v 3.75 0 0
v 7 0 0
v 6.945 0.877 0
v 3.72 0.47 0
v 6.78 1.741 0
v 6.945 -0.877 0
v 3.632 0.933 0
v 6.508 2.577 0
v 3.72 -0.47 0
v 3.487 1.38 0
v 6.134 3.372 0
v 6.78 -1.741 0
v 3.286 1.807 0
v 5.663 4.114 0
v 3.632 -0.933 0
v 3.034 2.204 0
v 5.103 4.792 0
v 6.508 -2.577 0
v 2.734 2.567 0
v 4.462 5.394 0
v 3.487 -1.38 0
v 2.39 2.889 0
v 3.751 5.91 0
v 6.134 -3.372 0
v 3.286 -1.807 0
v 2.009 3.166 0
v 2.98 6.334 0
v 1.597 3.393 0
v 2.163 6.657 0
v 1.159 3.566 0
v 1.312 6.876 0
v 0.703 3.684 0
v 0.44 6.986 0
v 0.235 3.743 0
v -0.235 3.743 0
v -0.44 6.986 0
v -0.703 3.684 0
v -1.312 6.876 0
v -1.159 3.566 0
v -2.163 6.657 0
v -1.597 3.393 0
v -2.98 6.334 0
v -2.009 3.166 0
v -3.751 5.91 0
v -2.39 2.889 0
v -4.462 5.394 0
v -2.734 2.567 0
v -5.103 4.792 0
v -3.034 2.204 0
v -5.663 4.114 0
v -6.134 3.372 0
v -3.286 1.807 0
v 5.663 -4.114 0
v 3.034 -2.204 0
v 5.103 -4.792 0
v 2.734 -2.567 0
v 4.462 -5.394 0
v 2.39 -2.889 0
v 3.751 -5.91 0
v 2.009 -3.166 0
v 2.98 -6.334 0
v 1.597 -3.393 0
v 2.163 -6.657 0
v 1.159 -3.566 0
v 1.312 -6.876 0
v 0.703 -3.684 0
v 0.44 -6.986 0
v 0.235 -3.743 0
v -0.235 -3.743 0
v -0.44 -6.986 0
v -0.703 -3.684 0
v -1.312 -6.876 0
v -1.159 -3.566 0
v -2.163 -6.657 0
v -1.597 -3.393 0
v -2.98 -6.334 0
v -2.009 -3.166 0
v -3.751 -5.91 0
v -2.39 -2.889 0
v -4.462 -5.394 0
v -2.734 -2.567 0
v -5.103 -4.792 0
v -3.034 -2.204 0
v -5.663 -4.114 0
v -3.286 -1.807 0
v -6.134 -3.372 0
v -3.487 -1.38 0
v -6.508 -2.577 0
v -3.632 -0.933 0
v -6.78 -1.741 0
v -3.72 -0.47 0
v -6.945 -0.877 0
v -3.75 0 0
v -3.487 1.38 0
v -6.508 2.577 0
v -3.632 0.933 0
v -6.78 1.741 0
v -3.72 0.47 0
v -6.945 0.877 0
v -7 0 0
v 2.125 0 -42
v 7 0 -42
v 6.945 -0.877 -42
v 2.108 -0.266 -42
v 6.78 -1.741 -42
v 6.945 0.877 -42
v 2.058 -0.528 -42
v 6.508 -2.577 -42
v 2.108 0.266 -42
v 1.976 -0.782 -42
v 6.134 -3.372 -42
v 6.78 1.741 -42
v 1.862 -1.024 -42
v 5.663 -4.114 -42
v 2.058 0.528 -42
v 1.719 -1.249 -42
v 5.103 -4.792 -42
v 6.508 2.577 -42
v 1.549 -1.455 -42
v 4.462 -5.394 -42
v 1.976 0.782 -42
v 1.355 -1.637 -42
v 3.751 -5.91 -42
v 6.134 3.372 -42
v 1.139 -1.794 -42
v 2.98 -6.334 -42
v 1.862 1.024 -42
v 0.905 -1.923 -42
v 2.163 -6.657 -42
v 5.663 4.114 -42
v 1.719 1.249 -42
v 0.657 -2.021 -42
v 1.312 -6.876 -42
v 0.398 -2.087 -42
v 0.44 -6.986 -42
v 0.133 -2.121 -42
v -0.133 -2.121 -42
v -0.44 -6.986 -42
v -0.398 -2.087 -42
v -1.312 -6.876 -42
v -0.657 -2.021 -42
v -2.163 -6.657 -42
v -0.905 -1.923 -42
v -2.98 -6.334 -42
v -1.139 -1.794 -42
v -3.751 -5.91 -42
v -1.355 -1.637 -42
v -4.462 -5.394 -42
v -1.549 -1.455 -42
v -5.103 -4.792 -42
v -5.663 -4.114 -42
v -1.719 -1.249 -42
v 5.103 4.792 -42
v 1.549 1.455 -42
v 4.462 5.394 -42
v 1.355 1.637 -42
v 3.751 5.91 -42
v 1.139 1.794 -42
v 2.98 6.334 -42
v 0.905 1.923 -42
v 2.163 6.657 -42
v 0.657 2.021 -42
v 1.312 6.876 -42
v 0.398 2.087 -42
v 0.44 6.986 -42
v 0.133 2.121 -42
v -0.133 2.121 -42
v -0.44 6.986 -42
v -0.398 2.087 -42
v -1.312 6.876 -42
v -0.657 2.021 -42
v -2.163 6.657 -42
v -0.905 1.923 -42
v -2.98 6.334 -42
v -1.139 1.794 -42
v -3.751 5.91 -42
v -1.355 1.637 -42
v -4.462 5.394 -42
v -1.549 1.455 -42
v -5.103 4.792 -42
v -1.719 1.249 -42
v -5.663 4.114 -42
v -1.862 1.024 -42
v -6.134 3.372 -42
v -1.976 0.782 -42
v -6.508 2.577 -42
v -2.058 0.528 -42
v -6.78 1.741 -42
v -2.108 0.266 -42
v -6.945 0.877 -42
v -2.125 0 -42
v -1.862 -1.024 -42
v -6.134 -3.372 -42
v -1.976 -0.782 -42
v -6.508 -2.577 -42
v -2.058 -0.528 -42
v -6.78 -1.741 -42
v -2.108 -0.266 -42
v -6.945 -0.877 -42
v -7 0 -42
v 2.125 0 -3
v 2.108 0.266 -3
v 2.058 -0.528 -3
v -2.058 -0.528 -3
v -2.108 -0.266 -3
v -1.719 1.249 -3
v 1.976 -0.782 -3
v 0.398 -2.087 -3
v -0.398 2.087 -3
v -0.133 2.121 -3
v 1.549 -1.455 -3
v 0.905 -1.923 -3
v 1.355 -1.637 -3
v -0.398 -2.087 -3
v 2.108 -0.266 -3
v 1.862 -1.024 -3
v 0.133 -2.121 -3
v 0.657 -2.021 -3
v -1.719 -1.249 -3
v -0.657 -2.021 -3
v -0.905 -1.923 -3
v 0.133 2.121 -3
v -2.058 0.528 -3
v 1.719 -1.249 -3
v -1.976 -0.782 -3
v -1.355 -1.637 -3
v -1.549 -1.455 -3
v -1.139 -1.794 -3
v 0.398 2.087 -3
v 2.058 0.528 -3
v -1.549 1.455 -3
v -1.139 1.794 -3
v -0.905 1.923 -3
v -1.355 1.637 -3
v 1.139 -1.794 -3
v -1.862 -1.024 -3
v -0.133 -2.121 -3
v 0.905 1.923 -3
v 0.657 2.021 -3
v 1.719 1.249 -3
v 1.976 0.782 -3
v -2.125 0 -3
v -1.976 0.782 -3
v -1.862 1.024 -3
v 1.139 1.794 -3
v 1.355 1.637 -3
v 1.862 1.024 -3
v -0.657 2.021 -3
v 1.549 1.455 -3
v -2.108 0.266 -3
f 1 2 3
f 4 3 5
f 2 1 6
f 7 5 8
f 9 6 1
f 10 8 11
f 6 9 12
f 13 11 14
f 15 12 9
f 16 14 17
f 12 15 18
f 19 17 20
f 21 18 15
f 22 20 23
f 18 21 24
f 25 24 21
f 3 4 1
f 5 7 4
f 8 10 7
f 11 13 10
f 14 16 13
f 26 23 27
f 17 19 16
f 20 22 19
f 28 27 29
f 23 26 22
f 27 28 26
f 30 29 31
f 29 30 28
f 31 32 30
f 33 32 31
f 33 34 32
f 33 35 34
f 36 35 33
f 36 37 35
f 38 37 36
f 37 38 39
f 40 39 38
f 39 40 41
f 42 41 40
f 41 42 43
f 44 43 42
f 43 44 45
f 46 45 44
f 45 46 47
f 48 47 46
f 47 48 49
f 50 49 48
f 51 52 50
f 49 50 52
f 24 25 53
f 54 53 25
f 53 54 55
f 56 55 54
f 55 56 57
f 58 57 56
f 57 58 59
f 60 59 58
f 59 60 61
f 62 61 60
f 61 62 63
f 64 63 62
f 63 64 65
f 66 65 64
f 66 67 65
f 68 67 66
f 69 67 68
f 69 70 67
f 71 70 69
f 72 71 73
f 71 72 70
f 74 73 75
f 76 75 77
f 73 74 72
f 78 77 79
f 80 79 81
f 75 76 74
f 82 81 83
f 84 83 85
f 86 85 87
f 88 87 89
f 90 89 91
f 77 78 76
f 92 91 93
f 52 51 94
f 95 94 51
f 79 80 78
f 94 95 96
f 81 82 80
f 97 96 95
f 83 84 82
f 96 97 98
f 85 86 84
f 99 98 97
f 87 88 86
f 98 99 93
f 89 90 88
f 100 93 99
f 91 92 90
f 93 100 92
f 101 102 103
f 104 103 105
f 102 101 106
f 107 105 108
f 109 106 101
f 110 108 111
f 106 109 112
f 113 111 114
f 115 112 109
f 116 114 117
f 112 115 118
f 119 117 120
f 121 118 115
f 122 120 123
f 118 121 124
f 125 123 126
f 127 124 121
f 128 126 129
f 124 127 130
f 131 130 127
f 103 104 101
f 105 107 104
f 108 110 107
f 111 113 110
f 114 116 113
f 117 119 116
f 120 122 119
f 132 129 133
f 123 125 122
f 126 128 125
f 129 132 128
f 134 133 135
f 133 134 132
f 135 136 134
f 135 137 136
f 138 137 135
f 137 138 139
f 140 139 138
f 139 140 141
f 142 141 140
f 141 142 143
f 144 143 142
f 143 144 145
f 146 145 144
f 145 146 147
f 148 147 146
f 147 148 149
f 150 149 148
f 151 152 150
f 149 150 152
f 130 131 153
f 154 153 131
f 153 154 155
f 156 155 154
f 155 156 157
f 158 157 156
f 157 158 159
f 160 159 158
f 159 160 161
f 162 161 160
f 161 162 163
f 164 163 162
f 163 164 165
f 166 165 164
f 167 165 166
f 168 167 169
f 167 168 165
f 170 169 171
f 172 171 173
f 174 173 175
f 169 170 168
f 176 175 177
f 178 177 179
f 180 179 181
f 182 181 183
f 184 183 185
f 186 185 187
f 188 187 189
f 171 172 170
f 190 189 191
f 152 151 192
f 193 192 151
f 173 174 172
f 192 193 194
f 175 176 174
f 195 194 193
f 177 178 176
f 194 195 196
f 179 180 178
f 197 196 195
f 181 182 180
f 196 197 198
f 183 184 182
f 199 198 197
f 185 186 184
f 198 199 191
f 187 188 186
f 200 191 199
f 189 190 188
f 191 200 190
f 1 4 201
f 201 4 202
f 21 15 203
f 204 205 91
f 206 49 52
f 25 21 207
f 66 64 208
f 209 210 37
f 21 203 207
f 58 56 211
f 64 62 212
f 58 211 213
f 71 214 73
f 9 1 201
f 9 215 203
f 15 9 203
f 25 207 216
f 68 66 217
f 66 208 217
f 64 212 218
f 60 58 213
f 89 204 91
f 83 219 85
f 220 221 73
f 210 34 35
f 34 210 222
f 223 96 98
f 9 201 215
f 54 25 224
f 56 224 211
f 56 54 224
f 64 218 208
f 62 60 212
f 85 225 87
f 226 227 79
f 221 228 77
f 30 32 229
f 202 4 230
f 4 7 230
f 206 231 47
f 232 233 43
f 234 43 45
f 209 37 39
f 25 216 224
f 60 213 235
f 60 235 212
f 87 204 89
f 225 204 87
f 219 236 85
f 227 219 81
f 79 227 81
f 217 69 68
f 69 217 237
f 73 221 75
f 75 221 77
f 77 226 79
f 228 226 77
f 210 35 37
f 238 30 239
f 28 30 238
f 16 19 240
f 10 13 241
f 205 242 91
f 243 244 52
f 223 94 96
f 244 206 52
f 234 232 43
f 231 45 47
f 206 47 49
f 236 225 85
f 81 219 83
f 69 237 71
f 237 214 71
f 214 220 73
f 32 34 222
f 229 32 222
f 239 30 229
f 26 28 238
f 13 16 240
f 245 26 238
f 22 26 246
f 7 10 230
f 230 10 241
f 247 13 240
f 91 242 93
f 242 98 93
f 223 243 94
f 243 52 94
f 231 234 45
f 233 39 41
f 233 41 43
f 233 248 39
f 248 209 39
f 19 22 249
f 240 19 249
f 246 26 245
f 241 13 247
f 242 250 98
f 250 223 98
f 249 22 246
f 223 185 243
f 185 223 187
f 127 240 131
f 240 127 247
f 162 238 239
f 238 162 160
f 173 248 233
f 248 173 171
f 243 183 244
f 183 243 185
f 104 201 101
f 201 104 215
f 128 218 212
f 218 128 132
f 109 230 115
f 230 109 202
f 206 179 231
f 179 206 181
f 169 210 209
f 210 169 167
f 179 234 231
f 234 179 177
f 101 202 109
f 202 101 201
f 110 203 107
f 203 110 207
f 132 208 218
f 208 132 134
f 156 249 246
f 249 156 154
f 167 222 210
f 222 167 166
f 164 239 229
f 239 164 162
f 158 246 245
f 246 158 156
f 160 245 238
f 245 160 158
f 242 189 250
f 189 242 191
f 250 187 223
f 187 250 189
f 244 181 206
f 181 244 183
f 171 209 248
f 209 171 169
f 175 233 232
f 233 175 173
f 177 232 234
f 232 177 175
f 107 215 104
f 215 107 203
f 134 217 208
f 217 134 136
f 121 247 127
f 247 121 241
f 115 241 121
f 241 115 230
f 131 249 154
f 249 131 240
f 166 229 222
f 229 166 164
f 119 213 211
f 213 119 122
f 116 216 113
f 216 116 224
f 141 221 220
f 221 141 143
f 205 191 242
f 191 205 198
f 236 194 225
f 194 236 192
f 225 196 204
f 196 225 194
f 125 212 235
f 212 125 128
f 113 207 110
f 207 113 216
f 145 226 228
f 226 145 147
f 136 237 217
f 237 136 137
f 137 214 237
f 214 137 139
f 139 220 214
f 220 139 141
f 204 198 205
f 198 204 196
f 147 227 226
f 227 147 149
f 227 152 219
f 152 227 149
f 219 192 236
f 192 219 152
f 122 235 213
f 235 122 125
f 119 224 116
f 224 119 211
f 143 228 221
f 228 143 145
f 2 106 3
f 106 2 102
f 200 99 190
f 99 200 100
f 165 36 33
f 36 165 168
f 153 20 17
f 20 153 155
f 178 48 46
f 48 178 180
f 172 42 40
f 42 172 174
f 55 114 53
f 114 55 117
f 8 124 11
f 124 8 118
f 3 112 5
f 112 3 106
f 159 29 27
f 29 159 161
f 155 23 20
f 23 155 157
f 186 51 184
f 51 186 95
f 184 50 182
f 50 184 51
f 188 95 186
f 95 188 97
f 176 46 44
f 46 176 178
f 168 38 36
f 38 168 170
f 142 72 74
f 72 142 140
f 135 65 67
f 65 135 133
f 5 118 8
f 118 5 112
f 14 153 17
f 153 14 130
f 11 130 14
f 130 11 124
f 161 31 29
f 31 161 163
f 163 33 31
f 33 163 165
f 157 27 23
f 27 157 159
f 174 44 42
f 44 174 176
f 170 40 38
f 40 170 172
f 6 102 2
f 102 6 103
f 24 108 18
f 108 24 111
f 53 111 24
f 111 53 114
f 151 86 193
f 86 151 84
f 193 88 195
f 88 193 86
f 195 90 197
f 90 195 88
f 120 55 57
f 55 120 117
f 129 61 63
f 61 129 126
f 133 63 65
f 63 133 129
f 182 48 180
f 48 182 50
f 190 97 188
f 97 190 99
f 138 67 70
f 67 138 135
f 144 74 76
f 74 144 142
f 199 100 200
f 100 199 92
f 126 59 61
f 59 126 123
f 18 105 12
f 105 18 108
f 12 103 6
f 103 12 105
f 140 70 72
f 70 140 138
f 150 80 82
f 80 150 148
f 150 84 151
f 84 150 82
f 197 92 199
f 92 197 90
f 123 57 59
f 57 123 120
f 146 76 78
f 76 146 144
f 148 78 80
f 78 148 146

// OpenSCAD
$fn = 50;


difference() {
	union() {
		translate(v = [0, 0, -42.0000000000]) {
			cylinder(h = 42, r = 7.0000000000);
		}
		cylinder(h = 0, r = 16.0000000000);
	}
	union() {
		translate(v = [0, 0, 0]) {
			rotate(a = [0, 0, 0]) {
				difference() {
					union() {
						#translate(v = [0, 0, -42.0000000000]) {
							cylinder(h = 42, r = 2.0000000000);
						}
						#translate(v = [0, 0, -3]) {
							cylinder(h = 3, r = 7.0000000000, r1 = 2.1250000000, r2 = 3.7500000000);
						}
						#translate(v = [0, 0, -42.0000000000]) {
							cylinder(h = 42, r = 2.1250000000);
						}
						#translate(v = [0, 0, -42.0000000000]) {
							cylinder(h = 42, r = 2.0000000000);
						}
					}
					union();
				}
			}
		}
	}
}
